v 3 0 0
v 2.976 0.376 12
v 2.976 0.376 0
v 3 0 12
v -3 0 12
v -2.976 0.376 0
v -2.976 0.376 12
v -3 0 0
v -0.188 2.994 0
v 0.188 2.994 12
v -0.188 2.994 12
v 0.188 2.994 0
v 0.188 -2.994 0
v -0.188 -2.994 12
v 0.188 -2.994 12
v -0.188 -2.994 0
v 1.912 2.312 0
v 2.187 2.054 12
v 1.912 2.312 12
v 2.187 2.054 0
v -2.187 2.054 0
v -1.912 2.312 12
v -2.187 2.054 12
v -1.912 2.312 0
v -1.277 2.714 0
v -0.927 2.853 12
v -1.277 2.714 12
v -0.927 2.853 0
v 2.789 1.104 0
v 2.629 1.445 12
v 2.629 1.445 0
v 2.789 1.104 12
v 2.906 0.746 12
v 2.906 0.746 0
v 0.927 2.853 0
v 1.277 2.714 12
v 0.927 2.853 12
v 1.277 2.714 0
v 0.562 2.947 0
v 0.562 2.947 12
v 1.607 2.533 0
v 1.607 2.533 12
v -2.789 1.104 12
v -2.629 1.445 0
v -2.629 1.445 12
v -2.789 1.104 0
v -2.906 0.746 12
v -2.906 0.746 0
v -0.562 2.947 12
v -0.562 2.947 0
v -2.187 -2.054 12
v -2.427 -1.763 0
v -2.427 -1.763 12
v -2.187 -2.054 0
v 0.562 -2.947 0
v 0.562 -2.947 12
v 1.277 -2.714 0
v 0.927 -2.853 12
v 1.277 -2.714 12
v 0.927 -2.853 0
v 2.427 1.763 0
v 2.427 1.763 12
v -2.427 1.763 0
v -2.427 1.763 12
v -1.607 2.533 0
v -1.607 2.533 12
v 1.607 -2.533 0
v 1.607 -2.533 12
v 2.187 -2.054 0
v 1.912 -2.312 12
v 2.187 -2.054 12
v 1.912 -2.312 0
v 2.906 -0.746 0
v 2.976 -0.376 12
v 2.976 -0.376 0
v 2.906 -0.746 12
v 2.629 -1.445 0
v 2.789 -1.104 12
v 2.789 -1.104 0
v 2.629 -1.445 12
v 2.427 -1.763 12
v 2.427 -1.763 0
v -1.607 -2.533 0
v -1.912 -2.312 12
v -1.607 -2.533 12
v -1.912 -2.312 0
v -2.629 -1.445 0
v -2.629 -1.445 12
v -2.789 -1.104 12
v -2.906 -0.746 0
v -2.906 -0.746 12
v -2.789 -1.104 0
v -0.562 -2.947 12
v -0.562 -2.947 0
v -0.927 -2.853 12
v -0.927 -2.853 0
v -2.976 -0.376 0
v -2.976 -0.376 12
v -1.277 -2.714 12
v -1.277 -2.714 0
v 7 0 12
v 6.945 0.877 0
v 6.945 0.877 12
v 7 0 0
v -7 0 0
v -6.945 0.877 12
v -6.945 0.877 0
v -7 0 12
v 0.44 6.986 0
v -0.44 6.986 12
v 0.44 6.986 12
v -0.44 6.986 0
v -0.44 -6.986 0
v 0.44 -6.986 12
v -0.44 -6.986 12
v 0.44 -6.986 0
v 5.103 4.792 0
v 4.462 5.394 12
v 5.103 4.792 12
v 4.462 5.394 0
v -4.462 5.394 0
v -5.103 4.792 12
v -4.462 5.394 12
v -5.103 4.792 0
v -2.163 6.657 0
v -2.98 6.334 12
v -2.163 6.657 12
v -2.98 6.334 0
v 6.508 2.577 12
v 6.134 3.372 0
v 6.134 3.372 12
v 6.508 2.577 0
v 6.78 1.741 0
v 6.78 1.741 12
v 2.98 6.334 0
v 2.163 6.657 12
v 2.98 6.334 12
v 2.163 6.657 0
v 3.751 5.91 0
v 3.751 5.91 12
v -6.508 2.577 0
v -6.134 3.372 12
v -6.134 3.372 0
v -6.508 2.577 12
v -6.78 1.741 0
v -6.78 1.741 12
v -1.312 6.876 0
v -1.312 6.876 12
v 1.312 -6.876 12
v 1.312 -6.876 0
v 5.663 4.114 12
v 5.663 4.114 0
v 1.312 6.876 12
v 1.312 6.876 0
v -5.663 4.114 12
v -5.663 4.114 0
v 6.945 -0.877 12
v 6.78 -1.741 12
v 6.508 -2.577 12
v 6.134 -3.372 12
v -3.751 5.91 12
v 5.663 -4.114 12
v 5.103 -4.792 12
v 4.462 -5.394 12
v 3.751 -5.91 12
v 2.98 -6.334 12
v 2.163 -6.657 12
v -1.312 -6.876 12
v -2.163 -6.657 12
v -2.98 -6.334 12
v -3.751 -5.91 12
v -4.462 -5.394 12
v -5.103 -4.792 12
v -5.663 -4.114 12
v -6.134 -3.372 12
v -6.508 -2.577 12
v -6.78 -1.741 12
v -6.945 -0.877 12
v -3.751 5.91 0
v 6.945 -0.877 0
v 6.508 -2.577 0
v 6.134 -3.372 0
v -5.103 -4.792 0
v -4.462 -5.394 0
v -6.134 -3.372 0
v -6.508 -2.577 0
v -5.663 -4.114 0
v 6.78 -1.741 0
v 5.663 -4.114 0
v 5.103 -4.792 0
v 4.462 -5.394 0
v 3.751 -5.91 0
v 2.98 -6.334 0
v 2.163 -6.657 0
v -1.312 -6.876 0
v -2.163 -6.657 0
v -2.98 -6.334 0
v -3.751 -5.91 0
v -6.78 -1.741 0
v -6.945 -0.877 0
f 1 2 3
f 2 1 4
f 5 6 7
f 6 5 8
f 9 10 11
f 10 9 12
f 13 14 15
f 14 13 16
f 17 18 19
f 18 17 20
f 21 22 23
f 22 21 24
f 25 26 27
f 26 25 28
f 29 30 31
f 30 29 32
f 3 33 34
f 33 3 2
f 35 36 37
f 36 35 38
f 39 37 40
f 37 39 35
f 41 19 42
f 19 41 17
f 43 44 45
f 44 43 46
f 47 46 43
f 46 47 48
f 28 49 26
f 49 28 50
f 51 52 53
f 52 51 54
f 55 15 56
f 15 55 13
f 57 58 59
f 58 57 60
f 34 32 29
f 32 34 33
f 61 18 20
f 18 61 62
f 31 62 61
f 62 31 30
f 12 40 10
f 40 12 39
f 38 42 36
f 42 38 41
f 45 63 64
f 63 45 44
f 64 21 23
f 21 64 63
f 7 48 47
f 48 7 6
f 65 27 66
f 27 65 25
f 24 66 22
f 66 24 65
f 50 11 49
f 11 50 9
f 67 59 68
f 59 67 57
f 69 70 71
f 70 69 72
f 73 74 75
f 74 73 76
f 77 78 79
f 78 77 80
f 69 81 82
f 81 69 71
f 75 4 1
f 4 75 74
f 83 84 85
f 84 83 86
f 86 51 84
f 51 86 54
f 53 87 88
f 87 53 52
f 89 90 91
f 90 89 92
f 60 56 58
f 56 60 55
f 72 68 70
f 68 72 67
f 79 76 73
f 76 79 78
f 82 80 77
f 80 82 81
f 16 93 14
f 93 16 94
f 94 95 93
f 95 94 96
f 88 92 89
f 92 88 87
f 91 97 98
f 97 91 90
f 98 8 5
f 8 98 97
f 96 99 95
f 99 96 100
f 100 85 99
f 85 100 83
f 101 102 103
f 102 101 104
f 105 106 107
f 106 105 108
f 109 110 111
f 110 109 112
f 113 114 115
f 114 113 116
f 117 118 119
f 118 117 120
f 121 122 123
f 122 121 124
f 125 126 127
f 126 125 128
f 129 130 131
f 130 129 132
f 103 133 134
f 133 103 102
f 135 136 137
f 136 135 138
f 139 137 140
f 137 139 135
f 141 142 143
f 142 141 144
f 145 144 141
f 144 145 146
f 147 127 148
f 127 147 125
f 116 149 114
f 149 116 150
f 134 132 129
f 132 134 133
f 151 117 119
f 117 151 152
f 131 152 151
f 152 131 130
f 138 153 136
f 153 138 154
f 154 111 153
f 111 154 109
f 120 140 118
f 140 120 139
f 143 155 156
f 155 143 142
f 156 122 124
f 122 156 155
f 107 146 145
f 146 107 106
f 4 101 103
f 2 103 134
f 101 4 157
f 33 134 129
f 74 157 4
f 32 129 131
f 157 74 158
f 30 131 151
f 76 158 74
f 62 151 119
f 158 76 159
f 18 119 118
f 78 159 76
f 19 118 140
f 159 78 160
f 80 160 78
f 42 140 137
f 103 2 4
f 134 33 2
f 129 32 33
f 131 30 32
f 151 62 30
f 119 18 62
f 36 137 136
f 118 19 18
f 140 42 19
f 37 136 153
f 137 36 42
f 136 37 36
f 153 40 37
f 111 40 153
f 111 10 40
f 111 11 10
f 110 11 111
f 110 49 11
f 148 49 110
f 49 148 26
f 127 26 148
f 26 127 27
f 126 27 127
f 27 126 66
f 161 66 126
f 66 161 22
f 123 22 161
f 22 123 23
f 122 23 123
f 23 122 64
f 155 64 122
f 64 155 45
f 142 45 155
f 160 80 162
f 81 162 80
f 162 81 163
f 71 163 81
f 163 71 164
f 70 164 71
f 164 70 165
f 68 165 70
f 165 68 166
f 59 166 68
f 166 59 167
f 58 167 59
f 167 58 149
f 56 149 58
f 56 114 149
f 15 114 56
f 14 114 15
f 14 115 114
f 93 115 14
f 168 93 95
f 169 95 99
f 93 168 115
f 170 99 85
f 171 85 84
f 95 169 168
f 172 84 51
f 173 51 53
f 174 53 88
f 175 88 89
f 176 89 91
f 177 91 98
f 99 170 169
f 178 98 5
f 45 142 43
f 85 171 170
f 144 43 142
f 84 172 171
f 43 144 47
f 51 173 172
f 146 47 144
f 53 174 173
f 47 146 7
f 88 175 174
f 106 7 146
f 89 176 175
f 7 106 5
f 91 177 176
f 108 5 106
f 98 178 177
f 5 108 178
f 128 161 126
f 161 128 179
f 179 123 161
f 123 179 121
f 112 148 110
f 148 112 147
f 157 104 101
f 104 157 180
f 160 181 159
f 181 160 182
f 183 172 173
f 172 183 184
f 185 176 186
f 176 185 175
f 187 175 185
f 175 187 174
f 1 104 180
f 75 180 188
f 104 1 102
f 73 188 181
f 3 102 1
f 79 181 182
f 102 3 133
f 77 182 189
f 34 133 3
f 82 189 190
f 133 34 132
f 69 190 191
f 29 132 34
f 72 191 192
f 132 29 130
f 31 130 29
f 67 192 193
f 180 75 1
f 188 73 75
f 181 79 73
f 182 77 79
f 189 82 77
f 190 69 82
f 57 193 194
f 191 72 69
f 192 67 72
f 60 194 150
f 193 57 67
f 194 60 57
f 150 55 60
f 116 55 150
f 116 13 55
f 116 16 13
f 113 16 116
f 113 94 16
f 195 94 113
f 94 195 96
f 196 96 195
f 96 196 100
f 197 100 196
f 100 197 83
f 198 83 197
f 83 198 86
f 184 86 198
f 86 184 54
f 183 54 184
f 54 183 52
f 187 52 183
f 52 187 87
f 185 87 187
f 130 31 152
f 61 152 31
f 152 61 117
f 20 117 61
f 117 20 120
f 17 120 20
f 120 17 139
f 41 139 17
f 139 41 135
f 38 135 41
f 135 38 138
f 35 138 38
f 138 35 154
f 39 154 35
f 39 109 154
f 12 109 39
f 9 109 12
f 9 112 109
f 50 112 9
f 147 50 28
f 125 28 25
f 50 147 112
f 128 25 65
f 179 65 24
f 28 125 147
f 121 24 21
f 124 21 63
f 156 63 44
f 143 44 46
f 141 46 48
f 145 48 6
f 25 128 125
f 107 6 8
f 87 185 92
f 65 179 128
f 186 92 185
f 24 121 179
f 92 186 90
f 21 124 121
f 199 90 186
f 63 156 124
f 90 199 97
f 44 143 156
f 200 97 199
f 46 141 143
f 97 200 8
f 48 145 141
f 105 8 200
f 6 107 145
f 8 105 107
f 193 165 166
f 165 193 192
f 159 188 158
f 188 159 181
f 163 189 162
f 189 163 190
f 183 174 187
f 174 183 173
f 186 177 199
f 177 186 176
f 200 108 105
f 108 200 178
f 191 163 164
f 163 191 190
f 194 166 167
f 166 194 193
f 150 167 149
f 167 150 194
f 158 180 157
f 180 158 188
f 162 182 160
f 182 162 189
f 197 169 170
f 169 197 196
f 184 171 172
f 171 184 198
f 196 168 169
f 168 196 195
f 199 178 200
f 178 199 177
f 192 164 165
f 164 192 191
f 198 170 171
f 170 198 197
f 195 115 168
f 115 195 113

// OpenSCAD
$fn = 50;


difference() {
	union() {
		cylinder(h = 12, r = 7.0000000000);
	}
	union() {
		translate(v = [0, 0, -100]) {
			cylinder(h = 200, r = 3.0000000000);
		}
	}
}
